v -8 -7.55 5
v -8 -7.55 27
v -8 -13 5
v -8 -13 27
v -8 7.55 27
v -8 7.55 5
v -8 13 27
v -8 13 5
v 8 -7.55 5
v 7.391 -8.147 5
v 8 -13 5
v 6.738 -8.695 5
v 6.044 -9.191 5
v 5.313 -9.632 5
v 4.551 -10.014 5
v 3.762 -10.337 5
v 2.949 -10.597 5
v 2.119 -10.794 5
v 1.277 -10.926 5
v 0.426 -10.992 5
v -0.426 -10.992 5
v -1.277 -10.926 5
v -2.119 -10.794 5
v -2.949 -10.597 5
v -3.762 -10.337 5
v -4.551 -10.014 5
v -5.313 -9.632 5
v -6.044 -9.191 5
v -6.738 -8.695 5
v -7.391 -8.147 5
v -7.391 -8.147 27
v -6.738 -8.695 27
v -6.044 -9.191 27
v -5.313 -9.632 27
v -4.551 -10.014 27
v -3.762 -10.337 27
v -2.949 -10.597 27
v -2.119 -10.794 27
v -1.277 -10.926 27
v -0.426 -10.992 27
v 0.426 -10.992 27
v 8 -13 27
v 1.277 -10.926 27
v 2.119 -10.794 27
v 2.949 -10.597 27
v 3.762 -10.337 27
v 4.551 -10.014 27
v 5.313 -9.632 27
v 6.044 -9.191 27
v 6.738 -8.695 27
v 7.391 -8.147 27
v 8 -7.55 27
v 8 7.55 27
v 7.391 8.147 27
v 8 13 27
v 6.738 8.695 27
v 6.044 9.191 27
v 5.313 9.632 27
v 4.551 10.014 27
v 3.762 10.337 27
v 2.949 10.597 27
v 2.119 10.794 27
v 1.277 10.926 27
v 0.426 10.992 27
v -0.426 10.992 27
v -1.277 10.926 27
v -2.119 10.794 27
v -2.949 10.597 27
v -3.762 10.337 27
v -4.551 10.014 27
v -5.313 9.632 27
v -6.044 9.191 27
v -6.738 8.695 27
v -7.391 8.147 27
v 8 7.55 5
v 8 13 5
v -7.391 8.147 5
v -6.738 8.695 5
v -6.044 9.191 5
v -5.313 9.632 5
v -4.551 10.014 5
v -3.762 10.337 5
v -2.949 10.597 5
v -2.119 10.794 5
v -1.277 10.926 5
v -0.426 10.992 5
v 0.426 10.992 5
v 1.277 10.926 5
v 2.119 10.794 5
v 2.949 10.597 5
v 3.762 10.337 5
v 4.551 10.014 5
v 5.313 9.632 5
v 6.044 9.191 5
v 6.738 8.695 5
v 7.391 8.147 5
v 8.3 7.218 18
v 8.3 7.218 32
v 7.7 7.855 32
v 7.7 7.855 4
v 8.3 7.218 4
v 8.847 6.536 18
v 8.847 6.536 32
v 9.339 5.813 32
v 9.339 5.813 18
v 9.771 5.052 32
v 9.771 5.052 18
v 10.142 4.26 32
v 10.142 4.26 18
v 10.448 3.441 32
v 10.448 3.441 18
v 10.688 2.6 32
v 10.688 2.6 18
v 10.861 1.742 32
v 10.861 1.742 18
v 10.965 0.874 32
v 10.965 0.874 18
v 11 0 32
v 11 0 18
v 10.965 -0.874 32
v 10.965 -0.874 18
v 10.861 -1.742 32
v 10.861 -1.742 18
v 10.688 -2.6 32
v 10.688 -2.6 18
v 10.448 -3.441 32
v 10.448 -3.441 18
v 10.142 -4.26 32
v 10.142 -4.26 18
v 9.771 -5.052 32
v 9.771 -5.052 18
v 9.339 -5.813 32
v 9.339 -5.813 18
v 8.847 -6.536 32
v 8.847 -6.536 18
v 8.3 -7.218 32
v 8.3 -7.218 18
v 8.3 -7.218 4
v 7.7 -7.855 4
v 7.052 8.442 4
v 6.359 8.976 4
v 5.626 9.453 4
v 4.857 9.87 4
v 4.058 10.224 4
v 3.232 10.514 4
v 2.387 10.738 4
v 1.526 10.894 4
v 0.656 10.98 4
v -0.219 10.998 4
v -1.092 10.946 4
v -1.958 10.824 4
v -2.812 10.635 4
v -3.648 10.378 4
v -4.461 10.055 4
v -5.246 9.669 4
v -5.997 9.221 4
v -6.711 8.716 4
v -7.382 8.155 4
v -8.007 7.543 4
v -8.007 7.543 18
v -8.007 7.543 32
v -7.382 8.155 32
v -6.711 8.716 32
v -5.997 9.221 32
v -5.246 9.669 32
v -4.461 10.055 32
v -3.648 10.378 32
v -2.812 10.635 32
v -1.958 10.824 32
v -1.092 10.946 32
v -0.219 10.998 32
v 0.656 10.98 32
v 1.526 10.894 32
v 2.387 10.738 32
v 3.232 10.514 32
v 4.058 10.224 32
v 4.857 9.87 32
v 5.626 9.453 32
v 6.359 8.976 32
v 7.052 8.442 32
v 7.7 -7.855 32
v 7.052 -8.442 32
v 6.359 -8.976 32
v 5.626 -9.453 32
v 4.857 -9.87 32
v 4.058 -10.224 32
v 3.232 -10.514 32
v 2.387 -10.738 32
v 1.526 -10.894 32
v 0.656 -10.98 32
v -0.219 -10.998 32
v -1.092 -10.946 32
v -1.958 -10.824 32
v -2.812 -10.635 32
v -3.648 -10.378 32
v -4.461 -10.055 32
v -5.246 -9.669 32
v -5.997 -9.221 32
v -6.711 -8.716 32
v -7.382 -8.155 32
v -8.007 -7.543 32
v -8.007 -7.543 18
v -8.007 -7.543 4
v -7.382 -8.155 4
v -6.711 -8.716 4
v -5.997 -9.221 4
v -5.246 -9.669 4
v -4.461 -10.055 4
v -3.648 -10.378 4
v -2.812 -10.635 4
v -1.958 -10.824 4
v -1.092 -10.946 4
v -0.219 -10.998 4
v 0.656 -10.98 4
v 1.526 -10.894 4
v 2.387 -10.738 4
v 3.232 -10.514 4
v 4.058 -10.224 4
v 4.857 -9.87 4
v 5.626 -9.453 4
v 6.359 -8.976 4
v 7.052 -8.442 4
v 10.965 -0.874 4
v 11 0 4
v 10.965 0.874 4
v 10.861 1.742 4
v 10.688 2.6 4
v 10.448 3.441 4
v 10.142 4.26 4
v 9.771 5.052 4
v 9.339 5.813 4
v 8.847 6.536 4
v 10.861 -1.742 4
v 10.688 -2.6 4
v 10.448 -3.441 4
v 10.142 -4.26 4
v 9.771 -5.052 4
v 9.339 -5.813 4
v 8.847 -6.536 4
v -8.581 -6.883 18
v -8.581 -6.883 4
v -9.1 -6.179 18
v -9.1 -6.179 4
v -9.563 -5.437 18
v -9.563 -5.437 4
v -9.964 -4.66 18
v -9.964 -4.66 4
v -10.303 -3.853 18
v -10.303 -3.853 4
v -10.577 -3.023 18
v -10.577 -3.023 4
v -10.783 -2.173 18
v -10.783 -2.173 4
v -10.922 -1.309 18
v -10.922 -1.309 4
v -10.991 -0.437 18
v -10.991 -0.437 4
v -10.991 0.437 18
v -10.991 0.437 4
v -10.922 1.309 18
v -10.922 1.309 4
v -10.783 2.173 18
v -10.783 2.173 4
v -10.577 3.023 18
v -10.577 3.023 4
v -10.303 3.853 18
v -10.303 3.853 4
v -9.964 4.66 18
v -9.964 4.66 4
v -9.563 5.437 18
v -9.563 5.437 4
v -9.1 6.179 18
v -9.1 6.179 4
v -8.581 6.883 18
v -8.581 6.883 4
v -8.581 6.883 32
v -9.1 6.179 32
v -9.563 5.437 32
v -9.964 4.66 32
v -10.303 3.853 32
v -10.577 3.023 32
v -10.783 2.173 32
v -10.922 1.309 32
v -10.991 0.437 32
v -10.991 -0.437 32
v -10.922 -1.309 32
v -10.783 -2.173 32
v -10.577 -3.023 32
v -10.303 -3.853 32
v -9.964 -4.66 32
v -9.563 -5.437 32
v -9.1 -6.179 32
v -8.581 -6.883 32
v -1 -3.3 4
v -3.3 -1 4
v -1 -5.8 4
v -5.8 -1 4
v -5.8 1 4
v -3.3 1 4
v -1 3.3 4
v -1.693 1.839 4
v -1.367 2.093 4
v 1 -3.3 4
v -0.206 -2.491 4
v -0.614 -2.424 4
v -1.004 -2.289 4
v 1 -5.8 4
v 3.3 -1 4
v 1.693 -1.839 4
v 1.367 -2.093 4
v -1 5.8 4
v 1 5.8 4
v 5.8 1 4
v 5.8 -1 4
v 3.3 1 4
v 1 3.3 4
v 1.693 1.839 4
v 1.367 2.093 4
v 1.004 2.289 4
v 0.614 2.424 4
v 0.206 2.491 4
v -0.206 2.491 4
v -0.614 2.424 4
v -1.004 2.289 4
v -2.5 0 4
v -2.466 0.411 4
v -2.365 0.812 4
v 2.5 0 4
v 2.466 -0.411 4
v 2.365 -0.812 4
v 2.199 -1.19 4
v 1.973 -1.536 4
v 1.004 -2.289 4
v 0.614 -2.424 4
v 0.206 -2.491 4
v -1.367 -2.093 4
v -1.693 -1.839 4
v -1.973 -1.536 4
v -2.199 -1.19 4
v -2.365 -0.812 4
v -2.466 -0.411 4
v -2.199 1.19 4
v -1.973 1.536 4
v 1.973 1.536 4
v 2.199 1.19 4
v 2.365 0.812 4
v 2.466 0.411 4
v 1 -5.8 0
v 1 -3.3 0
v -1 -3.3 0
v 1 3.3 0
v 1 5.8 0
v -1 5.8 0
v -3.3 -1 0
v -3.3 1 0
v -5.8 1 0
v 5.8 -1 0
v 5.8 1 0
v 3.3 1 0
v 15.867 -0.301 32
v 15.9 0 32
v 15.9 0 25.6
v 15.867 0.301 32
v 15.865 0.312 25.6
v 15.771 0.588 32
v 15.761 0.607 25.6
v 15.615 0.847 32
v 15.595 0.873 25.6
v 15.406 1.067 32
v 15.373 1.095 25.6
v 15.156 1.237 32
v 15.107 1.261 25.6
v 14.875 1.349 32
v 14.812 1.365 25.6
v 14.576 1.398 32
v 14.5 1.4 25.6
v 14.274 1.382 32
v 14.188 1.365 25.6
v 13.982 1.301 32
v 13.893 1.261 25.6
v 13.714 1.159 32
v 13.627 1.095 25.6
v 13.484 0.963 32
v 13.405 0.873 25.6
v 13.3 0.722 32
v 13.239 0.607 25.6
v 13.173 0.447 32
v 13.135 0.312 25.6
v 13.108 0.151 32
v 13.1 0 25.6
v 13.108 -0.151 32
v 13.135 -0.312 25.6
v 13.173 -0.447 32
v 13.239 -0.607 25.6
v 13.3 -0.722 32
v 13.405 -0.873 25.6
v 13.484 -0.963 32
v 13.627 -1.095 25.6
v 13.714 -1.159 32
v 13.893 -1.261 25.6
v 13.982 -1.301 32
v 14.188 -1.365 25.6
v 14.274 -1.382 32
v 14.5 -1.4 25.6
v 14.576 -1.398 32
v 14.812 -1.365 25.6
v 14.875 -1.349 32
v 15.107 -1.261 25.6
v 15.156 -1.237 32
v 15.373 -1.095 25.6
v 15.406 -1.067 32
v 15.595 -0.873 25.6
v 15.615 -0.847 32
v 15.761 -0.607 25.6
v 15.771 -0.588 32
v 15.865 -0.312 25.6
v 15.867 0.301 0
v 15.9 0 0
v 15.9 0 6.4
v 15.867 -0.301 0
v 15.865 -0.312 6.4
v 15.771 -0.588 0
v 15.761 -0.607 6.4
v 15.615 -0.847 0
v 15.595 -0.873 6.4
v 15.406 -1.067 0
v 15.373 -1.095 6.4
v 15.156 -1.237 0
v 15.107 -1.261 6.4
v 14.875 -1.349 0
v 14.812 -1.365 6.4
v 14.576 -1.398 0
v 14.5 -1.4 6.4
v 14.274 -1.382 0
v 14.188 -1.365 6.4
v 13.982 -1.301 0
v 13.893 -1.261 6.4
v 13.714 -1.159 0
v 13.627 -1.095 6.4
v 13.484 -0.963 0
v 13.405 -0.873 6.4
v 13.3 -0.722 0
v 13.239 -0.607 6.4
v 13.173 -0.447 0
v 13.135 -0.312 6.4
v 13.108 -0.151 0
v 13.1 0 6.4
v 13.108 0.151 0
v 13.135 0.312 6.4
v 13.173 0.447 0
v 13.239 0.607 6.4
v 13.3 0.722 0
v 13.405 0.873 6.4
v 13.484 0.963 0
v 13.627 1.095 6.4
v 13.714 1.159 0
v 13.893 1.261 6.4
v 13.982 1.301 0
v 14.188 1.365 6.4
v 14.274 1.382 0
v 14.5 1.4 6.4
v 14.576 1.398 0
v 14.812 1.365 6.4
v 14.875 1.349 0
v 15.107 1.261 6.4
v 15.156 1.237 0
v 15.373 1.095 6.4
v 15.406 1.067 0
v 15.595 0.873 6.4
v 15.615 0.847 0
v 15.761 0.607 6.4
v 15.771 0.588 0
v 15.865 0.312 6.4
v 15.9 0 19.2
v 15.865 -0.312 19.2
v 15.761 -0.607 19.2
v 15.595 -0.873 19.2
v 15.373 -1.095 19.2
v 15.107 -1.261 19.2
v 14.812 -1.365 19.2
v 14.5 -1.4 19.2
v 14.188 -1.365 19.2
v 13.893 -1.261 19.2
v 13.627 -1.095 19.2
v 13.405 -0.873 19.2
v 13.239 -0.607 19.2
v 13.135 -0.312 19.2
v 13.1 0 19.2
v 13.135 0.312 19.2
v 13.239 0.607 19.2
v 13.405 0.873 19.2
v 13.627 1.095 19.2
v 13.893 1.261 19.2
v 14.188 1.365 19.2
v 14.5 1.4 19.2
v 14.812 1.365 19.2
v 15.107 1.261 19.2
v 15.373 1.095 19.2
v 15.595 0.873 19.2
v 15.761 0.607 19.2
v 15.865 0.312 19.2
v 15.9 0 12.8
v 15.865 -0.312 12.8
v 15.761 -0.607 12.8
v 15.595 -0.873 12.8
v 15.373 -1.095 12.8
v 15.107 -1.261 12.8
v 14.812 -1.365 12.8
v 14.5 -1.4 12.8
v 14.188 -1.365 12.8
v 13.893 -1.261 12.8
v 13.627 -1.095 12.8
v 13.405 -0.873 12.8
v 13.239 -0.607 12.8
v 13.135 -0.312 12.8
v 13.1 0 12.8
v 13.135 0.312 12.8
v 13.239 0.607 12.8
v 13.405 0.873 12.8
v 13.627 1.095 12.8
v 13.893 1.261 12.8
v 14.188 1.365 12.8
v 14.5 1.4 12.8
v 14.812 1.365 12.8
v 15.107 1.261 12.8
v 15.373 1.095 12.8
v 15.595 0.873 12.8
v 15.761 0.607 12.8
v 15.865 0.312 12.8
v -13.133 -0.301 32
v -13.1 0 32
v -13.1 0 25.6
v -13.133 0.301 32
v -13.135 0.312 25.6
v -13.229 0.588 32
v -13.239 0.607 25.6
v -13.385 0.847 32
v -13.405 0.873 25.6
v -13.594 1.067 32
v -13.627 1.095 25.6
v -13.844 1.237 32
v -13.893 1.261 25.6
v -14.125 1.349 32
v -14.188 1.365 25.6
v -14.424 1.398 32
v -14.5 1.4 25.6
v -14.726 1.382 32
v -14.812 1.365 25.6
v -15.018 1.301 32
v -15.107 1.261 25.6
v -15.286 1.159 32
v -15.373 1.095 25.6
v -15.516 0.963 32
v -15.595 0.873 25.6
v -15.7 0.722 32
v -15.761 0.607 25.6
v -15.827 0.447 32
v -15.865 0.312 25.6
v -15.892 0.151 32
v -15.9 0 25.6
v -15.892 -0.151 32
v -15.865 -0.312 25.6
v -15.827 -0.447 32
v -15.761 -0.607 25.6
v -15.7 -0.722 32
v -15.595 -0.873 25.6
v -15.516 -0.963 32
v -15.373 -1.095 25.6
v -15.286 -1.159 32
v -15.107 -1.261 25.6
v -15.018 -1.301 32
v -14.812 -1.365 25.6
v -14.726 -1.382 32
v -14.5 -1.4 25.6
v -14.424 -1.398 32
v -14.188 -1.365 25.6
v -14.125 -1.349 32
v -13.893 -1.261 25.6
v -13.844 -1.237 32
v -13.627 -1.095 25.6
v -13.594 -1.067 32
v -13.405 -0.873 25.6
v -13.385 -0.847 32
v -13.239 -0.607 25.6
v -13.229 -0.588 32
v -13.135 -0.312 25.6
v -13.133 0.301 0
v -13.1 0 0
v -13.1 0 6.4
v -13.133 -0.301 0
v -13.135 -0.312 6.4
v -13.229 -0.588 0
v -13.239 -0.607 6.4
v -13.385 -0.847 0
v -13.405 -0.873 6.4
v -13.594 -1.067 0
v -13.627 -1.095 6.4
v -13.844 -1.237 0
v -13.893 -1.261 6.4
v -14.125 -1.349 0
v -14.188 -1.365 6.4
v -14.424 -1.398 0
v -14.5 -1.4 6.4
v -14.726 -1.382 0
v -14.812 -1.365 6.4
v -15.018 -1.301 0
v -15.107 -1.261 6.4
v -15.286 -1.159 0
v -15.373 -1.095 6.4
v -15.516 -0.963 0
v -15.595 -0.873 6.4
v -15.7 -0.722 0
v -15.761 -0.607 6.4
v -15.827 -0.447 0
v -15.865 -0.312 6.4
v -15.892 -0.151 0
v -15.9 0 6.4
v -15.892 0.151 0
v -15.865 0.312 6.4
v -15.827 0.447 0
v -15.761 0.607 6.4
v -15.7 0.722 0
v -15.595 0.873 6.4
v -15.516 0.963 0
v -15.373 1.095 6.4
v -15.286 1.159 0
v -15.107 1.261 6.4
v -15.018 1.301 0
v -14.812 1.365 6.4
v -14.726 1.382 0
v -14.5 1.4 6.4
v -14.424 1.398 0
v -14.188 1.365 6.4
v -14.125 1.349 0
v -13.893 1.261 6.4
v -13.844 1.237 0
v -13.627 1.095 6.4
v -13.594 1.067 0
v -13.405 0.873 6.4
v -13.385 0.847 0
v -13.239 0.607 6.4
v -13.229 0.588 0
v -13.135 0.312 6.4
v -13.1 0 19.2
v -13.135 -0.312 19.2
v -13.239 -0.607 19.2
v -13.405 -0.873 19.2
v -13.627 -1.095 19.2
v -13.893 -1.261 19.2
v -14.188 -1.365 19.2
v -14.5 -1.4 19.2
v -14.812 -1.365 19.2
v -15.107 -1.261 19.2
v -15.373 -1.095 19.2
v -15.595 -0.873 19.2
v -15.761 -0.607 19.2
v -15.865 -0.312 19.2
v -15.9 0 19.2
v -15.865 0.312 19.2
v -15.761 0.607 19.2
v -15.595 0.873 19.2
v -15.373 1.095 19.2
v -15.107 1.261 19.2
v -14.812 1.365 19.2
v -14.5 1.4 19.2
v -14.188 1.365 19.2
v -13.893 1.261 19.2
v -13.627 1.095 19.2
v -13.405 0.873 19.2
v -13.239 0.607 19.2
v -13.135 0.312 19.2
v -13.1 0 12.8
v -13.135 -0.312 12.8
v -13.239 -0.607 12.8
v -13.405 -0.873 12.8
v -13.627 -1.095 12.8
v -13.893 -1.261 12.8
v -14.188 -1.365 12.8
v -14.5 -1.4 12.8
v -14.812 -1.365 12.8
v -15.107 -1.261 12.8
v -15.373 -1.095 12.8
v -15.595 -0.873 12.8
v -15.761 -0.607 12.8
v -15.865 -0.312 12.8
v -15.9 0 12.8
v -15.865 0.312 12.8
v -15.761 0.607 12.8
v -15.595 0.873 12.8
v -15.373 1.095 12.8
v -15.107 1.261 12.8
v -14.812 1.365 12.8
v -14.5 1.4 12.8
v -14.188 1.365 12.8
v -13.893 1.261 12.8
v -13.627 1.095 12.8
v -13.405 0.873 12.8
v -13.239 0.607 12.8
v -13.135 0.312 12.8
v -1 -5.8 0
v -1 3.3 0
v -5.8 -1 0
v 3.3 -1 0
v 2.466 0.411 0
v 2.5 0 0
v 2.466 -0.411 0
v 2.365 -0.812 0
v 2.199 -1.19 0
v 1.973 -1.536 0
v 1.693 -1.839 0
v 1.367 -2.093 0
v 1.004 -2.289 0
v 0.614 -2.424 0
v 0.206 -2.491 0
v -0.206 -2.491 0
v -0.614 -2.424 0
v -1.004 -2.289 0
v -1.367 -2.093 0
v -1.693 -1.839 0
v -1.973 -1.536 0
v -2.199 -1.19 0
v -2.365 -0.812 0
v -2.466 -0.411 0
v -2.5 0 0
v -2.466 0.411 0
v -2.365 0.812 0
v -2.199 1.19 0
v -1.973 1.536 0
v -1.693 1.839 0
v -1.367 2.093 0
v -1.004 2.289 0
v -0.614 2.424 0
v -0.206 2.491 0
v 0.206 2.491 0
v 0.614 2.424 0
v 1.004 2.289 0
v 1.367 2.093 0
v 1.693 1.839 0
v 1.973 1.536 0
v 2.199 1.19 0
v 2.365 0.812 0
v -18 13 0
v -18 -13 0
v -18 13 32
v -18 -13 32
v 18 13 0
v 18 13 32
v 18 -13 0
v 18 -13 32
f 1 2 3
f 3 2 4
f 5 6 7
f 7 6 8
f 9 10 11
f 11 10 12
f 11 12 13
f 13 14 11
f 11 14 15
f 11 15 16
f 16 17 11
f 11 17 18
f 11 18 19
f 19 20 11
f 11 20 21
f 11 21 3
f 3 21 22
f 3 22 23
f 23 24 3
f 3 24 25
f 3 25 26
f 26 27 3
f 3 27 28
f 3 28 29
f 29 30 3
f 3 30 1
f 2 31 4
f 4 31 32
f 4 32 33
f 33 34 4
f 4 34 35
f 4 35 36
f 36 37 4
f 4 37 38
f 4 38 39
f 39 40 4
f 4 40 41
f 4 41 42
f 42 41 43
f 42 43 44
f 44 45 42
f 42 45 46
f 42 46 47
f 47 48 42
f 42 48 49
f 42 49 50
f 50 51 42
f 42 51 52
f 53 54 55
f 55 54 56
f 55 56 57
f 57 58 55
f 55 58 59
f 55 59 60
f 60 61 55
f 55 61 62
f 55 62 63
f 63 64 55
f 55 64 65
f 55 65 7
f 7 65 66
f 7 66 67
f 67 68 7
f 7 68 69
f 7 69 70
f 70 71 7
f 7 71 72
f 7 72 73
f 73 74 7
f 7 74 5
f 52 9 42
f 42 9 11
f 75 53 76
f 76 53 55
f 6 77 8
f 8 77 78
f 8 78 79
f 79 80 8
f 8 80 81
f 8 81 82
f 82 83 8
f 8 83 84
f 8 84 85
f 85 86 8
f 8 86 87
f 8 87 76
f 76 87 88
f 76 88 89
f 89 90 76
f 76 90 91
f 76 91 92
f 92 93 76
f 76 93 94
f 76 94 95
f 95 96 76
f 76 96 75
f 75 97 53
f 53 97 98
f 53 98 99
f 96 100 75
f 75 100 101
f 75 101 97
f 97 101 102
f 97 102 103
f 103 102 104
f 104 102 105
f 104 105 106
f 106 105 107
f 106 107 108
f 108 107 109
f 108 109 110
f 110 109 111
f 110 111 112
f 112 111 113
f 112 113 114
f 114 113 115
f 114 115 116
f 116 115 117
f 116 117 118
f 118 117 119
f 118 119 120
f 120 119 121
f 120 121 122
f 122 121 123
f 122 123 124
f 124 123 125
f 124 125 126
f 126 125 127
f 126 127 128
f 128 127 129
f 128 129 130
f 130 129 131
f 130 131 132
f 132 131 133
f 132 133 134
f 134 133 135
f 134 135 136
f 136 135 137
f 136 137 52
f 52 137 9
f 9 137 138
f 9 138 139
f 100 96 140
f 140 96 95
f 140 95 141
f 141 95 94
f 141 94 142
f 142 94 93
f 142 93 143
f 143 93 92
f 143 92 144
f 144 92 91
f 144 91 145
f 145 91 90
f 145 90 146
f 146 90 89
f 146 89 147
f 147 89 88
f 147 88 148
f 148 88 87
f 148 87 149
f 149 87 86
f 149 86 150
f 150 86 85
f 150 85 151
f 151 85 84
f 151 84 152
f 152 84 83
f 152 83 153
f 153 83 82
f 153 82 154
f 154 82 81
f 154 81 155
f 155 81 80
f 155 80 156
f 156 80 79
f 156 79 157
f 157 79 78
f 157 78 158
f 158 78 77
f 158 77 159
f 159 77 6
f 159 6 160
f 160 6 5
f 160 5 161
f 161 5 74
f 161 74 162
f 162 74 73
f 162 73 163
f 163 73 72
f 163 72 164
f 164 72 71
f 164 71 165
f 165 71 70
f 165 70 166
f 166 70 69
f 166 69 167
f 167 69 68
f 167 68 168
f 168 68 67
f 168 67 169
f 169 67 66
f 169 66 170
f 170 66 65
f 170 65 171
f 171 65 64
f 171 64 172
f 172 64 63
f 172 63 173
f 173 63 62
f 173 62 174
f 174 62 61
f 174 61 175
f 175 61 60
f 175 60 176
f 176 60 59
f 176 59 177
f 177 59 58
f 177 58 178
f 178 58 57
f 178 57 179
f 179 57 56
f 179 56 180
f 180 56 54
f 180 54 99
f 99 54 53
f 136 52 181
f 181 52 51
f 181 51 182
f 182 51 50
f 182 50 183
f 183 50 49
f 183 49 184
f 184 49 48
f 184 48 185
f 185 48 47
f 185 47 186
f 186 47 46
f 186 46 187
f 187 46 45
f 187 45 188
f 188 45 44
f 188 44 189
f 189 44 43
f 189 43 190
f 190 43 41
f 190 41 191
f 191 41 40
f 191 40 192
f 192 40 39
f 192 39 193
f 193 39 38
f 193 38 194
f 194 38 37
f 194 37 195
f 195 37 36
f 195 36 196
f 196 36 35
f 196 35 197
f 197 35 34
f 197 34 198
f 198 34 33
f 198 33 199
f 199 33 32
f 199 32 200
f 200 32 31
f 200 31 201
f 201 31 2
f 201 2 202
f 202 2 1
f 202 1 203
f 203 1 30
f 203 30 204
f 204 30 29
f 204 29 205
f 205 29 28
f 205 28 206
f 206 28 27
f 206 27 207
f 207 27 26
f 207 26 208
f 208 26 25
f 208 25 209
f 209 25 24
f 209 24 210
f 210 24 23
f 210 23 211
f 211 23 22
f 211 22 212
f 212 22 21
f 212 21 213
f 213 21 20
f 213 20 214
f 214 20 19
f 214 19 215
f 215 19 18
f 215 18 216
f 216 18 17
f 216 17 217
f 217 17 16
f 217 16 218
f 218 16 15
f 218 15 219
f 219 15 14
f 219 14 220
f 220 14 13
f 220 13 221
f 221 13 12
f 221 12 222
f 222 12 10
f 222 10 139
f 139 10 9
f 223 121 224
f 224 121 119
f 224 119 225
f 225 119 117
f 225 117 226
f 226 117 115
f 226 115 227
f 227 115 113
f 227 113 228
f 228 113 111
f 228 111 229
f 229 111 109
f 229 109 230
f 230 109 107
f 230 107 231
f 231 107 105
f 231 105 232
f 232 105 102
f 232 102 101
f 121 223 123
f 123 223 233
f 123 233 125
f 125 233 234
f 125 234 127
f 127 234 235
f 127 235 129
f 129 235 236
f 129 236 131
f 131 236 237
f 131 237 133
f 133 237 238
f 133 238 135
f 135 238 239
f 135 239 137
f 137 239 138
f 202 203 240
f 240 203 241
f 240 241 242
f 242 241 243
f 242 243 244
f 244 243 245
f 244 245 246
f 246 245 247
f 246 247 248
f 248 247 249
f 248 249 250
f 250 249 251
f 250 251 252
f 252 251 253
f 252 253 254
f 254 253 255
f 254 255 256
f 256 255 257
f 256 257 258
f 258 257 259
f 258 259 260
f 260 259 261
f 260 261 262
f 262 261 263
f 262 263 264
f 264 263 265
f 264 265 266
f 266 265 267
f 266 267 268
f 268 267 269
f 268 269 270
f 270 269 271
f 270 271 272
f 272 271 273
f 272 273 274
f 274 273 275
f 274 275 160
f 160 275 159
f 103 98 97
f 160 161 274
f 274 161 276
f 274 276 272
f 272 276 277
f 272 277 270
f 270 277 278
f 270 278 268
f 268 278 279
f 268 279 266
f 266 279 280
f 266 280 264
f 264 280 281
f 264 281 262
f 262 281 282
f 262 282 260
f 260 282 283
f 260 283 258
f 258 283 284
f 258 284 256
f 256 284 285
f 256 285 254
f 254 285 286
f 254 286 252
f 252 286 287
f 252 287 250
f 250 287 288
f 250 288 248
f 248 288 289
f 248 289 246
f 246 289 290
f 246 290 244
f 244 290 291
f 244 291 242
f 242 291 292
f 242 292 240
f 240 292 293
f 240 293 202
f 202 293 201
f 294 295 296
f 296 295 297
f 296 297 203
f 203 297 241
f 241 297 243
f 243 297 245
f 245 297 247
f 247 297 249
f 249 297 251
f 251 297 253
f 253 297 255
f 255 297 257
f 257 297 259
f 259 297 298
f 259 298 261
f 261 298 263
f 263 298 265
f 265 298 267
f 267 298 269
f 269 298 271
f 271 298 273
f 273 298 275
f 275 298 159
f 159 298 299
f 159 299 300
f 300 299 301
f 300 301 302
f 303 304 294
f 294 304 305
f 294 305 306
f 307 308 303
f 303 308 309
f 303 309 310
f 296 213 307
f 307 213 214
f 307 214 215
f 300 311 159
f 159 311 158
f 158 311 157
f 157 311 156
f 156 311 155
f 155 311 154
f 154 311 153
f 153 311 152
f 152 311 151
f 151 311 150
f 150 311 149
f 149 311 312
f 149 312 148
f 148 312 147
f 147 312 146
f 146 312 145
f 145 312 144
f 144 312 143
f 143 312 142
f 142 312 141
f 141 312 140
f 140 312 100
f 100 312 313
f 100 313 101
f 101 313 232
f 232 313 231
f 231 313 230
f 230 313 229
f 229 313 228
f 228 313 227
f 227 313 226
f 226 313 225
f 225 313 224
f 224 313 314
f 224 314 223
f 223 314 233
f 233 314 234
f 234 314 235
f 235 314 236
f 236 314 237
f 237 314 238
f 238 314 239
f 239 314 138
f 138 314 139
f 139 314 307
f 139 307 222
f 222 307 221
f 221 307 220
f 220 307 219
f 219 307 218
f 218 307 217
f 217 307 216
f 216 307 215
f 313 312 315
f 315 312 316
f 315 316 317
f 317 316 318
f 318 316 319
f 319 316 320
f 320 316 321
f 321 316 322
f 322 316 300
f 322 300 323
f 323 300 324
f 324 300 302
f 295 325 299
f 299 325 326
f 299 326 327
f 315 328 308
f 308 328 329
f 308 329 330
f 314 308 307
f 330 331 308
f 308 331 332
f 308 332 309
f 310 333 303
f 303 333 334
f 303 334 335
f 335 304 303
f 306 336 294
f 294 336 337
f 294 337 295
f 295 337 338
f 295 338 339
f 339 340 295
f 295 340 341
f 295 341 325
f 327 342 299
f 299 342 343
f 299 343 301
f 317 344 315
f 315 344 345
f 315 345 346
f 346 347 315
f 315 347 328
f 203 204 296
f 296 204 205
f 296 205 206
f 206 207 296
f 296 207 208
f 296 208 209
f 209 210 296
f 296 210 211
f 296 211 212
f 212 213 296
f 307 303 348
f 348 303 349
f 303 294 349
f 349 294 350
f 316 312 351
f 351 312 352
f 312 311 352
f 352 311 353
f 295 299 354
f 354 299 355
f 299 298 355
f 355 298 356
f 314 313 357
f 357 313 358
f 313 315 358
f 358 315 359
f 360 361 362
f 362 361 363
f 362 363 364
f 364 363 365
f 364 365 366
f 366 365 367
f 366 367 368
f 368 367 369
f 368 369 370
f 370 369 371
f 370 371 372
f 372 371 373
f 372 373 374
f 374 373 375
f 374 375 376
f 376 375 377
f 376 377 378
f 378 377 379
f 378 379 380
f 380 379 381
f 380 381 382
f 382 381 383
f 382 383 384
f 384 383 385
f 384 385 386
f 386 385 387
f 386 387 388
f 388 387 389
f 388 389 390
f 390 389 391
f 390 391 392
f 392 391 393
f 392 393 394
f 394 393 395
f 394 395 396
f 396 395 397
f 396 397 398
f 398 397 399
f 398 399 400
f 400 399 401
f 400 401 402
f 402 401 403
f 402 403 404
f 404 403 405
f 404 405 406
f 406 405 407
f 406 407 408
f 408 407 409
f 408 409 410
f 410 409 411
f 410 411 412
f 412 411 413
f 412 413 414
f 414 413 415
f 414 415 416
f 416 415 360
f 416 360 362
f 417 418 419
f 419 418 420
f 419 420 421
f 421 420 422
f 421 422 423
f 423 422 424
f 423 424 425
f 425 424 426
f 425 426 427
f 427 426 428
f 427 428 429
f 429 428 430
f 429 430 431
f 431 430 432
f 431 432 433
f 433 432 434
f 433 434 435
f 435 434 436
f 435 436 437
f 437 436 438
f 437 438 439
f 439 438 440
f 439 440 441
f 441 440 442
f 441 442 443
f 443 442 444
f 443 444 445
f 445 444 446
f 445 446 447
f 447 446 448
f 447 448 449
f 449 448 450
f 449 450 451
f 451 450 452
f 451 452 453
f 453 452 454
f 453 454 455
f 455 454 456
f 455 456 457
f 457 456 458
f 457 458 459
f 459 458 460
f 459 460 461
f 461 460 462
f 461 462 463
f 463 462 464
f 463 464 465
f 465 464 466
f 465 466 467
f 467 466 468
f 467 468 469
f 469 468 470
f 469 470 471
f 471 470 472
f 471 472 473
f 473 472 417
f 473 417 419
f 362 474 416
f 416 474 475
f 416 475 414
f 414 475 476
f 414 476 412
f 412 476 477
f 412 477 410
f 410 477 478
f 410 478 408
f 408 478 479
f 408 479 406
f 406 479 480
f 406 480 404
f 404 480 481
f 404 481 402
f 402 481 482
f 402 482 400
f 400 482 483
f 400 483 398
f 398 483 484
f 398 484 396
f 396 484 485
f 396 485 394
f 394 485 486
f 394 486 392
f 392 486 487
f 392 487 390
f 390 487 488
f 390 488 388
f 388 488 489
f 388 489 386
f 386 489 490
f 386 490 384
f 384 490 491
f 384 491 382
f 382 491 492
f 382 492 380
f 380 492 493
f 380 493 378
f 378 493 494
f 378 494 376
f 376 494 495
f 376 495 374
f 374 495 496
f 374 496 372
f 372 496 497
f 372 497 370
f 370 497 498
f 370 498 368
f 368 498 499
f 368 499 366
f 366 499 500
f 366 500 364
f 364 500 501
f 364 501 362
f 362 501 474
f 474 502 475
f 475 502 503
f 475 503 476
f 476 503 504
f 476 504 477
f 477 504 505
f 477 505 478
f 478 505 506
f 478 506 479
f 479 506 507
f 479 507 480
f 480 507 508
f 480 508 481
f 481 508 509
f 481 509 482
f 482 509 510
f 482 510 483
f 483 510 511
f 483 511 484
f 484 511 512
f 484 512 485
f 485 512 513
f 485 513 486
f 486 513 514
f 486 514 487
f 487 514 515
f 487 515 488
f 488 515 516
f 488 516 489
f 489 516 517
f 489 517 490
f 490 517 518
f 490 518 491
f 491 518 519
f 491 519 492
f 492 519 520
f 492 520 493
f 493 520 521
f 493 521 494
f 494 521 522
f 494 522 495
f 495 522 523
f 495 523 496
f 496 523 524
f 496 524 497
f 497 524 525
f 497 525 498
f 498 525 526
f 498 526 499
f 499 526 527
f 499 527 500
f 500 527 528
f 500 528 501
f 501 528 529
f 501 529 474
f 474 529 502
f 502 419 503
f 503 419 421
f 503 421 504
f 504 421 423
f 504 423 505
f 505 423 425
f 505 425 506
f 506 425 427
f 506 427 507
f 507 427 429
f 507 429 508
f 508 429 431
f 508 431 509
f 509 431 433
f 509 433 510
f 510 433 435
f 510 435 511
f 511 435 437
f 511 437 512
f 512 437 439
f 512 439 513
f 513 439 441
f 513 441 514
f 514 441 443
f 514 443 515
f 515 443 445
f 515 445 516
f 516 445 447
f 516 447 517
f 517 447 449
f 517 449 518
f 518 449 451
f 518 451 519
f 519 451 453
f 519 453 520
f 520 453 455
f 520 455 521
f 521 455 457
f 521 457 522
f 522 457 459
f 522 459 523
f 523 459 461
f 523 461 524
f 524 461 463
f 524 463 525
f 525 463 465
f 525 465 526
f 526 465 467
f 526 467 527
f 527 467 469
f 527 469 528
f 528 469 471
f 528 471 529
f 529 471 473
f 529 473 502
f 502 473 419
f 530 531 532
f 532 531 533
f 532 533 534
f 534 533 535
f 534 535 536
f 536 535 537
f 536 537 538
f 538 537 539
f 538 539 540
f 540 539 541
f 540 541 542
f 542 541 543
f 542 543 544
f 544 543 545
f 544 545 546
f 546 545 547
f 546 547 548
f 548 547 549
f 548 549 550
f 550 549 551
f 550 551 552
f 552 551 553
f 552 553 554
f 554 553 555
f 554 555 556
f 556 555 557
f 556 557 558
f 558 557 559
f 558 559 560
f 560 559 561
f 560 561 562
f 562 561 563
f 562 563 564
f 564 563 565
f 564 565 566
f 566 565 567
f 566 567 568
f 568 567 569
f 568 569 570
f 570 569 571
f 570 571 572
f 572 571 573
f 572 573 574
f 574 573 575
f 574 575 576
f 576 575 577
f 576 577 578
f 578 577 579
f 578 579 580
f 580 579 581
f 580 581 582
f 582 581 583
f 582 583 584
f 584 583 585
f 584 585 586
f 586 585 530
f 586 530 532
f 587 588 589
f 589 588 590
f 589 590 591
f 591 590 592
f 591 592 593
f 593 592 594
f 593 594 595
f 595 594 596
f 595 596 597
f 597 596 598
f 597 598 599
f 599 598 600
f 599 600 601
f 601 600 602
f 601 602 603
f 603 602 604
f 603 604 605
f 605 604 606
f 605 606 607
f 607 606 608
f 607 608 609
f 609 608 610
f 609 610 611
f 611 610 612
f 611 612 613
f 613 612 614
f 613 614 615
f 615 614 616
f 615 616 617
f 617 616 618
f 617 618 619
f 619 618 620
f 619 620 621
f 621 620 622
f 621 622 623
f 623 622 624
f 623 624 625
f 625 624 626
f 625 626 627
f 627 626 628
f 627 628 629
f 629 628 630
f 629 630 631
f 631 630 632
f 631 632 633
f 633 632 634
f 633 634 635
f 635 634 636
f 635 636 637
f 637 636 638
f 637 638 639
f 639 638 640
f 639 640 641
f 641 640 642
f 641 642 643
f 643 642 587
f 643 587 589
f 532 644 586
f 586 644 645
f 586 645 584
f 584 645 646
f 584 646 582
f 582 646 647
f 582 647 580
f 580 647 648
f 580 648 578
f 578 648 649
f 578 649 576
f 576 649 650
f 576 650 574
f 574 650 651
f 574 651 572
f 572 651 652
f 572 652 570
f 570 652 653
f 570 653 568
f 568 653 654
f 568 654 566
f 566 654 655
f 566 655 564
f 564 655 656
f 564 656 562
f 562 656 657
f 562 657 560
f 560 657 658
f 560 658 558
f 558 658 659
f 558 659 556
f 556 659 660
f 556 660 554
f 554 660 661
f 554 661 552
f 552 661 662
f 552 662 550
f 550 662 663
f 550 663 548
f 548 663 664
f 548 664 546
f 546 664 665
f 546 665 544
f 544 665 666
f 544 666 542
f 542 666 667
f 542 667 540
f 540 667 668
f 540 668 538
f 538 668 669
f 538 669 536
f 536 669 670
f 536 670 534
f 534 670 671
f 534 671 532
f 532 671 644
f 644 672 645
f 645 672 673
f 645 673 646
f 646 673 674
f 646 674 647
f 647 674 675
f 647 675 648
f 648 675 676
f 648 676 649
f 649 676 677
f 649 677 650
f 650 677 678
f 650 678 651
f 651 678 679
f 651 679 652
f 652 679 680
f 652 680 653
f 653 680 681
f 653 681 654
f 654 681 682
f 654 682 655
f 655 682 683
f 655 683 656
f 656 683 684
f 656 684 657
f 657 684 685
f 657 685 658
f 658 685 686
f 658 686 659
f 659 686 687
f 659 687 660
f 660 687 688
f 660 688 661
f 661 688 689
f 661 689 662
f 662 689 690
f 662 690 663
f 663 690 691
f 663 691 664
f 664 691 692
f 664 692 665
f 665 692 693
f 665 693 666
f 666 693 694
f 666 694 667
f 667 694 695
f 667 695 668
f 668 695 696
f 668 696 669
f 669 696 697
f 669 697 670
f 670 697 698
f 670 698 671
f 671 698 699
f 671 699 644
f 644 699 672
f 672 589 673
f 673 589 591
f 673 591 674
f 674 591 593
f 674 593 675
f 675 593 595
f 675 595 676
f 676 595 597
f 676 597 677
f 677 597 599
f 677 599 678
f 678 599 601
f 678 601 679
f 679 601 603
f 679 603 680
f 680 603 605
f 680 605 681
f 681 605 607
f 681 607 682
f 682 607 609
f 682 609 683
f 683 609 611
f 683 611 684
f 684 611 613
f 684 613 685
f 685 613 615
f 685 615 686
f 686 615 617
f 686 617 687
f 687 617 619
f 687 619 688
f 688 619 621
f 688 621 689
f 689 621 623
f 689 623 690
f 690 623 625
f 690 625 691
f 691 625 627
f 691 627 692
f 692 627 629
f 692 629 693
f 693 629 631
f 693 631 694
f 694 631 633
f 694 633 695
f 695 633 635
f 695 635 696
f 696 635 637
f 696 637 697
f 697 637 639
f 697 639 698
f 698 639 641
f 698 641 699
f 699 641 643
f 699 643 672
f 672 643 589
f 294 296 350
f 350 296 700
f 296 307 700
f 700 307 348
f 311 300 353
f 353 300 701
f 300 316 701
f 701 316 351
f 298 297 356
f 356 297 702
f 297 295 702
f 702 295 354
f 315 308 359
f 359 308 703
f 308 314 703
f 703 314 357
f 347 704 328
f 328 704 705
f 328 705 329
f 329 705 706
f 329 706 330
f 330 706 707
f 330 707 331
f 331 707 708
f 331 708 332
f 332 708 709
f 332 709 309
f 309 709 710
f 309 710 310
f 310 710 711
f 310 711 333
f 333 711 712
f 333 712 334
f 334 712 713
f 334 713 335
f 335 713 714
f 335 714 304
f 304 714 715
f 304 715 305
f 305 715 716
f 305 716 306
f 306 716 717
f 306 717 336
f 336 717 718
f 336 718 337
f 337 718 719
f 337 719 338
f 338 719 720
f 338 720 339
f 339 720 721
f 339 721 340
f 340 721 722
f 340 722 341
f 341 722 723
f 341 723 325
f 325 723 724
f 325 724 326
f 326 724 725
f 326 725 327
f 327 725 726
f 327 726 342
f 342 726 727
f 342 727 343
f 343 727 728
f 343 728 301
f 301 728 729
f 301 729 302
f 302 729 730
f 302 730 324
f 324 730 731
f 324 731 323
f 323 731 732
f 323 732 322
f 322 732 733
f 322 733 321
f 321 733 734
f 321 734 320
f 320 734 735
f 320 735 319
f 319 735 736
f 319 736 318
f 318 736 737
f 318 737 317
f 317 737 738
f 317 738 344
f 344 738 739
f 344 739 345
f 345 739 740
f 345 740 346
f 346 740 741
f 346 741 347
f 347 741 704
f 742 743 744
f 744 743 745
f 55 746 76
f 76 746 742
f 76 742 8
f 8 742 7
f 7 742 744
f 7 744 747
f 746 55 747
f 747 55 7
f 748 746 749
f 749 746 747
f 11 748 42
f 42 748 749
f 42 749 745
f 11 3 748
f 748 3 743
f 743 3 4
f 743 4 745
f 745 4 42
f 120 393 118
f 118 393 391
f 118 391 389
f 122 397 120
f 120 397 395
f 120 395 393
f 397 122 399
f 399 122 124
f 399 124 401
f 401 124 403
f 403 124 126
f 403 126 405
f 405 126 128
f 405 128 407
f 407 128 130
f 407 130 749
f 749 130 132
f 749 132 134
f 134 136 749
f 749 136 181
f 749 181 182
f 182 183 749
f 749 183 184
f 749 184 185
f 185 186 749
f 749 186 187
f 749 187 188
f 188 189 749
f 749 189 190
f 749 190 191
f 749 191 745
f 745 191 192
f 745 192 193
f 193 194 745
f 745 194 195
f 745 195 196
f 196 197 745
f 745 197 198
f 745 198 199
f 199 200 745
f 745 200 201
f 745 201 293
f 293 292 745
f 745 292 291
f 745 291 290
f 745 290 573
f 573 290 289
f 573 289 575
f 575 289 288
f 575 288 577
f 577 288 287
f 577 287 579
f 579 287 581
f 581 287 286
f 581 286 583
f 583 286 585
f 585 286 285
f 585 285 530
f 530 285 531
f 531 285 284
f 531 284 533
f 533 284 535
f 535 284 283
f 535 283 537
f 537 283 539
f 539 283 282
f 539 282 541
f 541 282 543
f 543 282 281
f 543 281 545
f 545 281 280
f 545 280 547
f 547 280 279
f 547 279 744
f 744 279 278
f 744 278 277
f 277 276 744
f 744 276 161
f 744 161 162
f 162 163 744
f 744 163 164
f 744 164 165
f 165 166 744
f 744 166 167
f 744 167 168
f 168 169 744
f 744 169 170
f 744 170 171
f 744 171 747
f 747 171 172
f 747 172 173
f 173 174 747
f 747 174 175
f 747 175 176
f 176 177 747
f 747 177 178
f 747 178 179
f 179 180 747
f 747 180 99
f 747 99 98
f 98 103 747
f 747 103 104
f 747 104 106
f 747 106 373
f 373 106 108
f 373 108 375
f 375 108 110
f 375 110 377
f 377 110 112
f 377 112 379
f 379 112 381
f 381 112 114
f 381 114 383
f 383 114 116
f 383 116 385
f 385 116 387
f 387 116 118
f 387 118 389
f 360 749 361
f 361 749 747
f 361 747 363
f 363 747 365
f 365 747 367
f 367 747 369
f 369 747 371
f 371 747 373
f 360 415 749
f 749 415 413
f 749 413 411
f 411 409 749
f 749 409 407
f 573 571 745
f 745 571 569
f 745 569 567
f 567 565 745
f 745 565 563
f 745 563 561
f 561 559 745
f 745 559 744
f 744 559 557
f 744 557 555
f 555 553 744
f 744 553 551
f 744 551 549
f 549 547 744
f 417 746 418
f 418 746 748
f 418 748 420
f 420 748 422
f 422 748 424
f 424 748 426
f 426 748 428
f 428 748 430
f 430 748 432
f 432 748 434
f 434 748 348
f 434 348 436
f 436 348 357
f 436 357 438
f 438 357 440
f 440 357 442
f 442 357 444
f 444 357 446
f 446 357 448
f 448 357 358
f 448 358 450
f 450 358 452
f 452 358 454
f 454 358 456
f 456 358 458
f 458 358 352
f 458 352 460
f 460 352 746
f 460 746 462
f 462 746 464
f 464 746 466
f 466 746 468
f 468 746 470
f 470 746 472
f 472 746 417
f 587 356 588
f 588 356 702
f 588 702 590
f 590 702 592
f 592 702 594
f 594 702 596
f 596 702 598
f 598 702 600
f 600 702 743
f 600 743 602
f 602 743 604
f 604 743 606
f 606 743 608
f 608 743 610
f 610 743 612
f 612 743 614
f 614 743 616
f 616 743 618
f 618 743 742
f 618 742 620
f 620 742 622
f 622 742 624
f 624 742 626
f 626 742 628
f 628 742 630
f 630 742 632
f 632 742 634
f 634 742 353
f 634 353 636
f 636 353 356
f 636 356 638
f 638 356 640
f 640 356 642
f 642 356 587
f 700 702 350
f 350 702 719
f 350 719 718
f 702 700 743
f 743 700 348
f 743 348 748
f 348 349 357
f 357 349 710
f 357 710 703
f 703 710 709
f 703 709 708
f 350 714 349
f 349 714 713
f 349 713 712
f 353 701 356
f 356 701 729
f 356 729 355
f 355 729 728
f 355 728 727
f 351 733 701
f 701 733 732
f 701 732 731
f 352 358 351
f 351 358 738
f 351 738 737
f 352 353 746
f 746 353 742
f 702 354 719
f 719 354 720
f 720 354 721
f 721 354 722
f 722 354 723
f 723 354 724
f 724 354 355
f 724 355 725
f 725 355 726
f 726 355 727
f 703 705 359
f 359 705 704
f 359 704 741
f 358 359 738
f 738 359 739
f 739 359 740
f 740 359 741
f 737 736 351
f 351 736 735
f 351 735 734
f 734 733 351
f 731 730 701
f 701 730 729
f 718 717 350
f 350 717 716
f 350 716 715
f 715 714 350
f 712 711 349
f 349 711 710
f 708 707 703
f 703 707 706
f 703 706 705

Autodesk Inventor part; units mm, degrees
ref_plane "YZ Plane" through (0, 0, 0) normal (1, 0, 0) x (0, 1, 0)
ref_plane "XZ Plane" through (0, 0, 0) normal (0, 1, 0) x (-1, 0, 0)
sketch "Skizze1" plane through (0, 0, 0) normal (0, 0, 1) x (1, 0, 0)
  line L0 (-18, -13) -> (18, -13)
  line L1 (18, -13) -> (18, 13)
  line L2 (18, 13) -> (-18, 13)
  line L3 (-18, 13) -> (-18, -13)
extrude "Extrusion1" add sketch "Skizze1" along normal blind 32
sketch "Skizze2" plane through (0, 0, 0) normal (0, 0, 1) x (1, 0, 0)
  circle A0 centre (0, 0) radius 2.5
extrude "Extrusion2" cut sketch "Skizze2" along normal blind 4.2
sketch "Skizze3" plane through (0, 0, 0) normal (0, 0, 1) x (1, 0, 0)
  line L0 (3.3, -1) -> (5.8, -1)
  line L1 (5.8, -1) -> (5.8, 1)
  line L2 (5.8, 1) -> (3.3, 1)
  line L3 (3.3, 1) -> (3.3, -1)
extrude "Extrusion3" cut sketch "Skizze3" along normal blind 4.2
sketch "Skizze4" plane through (0, 0, 0) normal (0, 0, 1) x (1, 0, 0)
  line L0 (-5.8, -1) -> (-3.3, -1)
  line L1 (-3.3, -1) -> (-3.3, 1)
  line L2 (-3.3, 1) -> (-5.8, 1)
  line L3 (-5.8, 1) -> (-5.8, -1)
extrude "Extrusion4" cut sketch "Skizze4" along normal blind 4.2
sketch "Skizze5" plane through (0, 0, 0) normal (0, 0, 1) x (1, 0, 0)
  line L0 (-1, 3.3) -> (1, 3.3)
  line L1 (1, 3.3) -> (1, 5.8)
  line L2 (1, 5.8) -> (-1, 5.8)
  line L3 (-1, 5.8) -> (-1, 3.3)
extrude "Extrusion5" cut sketch "Skizze5" along normal blind 4.2
sketch "Skizze6" plane through (0, 0, 0) normal (0, 0, 1) x (1, 0, 0)
  line L0 (-1, -5.8) -> (1, -5.8)
  line L1 (1, -5.8) -> (1, -3.3)
  line L2 (1, -3.3) -> (-1, -3.3)
  line L3 (-1, -3.3) -> (-1, -5.8)
extrude "Extrusion6" cut sketch "Skizze6" along normal blind 4.2
sketch "Skizze7" plane through (0, 0, 0) normal (0, 0, 1) x (1, 0, 0)
  circle A0 centre (-14.5, 0) radius 1.4
extrude "Extrusion7" cut sketch "Skizze7" along normal blind 32.2
sketch "Skizze8" plane through (0, 0, 0) normal (0, 0, 1) x (1, 0, 0)
  circle A0 centre (14.5, 0) radius 1.4
extrude "Extrusion8" cut sketch "Skizze8" along normal blind 32.2
ref_plane "Arbeitsebene1" through (0, 0, 32) normal (0, 0, 1) x (1, 0, 0)
sketch "Skizze9" plane through (0, 0, 32) normal (0, 0, 1) x (1, 0, 0)
  circle A0 centre (0, 0) radius 11
extrude "Extrusion9" cut sketch "Skizze9" against normal blind 28
sketch "Skizze10" plane through (0, 0, 0) normal (0, 1, 0) x (-1, 0, 0)
  line L0 (-8, 5) -> (8, 5)
  line L1 (8, 5) -> (8, 27)
  line L2 (8, 27) -> (-8, 27)
  line L3 (-8, 27) -> (-8, 5)
extrude "Extrusion10" cut sketch "Skizze10" along normal mid plane 30
properties part number "Motorblock_N20"
